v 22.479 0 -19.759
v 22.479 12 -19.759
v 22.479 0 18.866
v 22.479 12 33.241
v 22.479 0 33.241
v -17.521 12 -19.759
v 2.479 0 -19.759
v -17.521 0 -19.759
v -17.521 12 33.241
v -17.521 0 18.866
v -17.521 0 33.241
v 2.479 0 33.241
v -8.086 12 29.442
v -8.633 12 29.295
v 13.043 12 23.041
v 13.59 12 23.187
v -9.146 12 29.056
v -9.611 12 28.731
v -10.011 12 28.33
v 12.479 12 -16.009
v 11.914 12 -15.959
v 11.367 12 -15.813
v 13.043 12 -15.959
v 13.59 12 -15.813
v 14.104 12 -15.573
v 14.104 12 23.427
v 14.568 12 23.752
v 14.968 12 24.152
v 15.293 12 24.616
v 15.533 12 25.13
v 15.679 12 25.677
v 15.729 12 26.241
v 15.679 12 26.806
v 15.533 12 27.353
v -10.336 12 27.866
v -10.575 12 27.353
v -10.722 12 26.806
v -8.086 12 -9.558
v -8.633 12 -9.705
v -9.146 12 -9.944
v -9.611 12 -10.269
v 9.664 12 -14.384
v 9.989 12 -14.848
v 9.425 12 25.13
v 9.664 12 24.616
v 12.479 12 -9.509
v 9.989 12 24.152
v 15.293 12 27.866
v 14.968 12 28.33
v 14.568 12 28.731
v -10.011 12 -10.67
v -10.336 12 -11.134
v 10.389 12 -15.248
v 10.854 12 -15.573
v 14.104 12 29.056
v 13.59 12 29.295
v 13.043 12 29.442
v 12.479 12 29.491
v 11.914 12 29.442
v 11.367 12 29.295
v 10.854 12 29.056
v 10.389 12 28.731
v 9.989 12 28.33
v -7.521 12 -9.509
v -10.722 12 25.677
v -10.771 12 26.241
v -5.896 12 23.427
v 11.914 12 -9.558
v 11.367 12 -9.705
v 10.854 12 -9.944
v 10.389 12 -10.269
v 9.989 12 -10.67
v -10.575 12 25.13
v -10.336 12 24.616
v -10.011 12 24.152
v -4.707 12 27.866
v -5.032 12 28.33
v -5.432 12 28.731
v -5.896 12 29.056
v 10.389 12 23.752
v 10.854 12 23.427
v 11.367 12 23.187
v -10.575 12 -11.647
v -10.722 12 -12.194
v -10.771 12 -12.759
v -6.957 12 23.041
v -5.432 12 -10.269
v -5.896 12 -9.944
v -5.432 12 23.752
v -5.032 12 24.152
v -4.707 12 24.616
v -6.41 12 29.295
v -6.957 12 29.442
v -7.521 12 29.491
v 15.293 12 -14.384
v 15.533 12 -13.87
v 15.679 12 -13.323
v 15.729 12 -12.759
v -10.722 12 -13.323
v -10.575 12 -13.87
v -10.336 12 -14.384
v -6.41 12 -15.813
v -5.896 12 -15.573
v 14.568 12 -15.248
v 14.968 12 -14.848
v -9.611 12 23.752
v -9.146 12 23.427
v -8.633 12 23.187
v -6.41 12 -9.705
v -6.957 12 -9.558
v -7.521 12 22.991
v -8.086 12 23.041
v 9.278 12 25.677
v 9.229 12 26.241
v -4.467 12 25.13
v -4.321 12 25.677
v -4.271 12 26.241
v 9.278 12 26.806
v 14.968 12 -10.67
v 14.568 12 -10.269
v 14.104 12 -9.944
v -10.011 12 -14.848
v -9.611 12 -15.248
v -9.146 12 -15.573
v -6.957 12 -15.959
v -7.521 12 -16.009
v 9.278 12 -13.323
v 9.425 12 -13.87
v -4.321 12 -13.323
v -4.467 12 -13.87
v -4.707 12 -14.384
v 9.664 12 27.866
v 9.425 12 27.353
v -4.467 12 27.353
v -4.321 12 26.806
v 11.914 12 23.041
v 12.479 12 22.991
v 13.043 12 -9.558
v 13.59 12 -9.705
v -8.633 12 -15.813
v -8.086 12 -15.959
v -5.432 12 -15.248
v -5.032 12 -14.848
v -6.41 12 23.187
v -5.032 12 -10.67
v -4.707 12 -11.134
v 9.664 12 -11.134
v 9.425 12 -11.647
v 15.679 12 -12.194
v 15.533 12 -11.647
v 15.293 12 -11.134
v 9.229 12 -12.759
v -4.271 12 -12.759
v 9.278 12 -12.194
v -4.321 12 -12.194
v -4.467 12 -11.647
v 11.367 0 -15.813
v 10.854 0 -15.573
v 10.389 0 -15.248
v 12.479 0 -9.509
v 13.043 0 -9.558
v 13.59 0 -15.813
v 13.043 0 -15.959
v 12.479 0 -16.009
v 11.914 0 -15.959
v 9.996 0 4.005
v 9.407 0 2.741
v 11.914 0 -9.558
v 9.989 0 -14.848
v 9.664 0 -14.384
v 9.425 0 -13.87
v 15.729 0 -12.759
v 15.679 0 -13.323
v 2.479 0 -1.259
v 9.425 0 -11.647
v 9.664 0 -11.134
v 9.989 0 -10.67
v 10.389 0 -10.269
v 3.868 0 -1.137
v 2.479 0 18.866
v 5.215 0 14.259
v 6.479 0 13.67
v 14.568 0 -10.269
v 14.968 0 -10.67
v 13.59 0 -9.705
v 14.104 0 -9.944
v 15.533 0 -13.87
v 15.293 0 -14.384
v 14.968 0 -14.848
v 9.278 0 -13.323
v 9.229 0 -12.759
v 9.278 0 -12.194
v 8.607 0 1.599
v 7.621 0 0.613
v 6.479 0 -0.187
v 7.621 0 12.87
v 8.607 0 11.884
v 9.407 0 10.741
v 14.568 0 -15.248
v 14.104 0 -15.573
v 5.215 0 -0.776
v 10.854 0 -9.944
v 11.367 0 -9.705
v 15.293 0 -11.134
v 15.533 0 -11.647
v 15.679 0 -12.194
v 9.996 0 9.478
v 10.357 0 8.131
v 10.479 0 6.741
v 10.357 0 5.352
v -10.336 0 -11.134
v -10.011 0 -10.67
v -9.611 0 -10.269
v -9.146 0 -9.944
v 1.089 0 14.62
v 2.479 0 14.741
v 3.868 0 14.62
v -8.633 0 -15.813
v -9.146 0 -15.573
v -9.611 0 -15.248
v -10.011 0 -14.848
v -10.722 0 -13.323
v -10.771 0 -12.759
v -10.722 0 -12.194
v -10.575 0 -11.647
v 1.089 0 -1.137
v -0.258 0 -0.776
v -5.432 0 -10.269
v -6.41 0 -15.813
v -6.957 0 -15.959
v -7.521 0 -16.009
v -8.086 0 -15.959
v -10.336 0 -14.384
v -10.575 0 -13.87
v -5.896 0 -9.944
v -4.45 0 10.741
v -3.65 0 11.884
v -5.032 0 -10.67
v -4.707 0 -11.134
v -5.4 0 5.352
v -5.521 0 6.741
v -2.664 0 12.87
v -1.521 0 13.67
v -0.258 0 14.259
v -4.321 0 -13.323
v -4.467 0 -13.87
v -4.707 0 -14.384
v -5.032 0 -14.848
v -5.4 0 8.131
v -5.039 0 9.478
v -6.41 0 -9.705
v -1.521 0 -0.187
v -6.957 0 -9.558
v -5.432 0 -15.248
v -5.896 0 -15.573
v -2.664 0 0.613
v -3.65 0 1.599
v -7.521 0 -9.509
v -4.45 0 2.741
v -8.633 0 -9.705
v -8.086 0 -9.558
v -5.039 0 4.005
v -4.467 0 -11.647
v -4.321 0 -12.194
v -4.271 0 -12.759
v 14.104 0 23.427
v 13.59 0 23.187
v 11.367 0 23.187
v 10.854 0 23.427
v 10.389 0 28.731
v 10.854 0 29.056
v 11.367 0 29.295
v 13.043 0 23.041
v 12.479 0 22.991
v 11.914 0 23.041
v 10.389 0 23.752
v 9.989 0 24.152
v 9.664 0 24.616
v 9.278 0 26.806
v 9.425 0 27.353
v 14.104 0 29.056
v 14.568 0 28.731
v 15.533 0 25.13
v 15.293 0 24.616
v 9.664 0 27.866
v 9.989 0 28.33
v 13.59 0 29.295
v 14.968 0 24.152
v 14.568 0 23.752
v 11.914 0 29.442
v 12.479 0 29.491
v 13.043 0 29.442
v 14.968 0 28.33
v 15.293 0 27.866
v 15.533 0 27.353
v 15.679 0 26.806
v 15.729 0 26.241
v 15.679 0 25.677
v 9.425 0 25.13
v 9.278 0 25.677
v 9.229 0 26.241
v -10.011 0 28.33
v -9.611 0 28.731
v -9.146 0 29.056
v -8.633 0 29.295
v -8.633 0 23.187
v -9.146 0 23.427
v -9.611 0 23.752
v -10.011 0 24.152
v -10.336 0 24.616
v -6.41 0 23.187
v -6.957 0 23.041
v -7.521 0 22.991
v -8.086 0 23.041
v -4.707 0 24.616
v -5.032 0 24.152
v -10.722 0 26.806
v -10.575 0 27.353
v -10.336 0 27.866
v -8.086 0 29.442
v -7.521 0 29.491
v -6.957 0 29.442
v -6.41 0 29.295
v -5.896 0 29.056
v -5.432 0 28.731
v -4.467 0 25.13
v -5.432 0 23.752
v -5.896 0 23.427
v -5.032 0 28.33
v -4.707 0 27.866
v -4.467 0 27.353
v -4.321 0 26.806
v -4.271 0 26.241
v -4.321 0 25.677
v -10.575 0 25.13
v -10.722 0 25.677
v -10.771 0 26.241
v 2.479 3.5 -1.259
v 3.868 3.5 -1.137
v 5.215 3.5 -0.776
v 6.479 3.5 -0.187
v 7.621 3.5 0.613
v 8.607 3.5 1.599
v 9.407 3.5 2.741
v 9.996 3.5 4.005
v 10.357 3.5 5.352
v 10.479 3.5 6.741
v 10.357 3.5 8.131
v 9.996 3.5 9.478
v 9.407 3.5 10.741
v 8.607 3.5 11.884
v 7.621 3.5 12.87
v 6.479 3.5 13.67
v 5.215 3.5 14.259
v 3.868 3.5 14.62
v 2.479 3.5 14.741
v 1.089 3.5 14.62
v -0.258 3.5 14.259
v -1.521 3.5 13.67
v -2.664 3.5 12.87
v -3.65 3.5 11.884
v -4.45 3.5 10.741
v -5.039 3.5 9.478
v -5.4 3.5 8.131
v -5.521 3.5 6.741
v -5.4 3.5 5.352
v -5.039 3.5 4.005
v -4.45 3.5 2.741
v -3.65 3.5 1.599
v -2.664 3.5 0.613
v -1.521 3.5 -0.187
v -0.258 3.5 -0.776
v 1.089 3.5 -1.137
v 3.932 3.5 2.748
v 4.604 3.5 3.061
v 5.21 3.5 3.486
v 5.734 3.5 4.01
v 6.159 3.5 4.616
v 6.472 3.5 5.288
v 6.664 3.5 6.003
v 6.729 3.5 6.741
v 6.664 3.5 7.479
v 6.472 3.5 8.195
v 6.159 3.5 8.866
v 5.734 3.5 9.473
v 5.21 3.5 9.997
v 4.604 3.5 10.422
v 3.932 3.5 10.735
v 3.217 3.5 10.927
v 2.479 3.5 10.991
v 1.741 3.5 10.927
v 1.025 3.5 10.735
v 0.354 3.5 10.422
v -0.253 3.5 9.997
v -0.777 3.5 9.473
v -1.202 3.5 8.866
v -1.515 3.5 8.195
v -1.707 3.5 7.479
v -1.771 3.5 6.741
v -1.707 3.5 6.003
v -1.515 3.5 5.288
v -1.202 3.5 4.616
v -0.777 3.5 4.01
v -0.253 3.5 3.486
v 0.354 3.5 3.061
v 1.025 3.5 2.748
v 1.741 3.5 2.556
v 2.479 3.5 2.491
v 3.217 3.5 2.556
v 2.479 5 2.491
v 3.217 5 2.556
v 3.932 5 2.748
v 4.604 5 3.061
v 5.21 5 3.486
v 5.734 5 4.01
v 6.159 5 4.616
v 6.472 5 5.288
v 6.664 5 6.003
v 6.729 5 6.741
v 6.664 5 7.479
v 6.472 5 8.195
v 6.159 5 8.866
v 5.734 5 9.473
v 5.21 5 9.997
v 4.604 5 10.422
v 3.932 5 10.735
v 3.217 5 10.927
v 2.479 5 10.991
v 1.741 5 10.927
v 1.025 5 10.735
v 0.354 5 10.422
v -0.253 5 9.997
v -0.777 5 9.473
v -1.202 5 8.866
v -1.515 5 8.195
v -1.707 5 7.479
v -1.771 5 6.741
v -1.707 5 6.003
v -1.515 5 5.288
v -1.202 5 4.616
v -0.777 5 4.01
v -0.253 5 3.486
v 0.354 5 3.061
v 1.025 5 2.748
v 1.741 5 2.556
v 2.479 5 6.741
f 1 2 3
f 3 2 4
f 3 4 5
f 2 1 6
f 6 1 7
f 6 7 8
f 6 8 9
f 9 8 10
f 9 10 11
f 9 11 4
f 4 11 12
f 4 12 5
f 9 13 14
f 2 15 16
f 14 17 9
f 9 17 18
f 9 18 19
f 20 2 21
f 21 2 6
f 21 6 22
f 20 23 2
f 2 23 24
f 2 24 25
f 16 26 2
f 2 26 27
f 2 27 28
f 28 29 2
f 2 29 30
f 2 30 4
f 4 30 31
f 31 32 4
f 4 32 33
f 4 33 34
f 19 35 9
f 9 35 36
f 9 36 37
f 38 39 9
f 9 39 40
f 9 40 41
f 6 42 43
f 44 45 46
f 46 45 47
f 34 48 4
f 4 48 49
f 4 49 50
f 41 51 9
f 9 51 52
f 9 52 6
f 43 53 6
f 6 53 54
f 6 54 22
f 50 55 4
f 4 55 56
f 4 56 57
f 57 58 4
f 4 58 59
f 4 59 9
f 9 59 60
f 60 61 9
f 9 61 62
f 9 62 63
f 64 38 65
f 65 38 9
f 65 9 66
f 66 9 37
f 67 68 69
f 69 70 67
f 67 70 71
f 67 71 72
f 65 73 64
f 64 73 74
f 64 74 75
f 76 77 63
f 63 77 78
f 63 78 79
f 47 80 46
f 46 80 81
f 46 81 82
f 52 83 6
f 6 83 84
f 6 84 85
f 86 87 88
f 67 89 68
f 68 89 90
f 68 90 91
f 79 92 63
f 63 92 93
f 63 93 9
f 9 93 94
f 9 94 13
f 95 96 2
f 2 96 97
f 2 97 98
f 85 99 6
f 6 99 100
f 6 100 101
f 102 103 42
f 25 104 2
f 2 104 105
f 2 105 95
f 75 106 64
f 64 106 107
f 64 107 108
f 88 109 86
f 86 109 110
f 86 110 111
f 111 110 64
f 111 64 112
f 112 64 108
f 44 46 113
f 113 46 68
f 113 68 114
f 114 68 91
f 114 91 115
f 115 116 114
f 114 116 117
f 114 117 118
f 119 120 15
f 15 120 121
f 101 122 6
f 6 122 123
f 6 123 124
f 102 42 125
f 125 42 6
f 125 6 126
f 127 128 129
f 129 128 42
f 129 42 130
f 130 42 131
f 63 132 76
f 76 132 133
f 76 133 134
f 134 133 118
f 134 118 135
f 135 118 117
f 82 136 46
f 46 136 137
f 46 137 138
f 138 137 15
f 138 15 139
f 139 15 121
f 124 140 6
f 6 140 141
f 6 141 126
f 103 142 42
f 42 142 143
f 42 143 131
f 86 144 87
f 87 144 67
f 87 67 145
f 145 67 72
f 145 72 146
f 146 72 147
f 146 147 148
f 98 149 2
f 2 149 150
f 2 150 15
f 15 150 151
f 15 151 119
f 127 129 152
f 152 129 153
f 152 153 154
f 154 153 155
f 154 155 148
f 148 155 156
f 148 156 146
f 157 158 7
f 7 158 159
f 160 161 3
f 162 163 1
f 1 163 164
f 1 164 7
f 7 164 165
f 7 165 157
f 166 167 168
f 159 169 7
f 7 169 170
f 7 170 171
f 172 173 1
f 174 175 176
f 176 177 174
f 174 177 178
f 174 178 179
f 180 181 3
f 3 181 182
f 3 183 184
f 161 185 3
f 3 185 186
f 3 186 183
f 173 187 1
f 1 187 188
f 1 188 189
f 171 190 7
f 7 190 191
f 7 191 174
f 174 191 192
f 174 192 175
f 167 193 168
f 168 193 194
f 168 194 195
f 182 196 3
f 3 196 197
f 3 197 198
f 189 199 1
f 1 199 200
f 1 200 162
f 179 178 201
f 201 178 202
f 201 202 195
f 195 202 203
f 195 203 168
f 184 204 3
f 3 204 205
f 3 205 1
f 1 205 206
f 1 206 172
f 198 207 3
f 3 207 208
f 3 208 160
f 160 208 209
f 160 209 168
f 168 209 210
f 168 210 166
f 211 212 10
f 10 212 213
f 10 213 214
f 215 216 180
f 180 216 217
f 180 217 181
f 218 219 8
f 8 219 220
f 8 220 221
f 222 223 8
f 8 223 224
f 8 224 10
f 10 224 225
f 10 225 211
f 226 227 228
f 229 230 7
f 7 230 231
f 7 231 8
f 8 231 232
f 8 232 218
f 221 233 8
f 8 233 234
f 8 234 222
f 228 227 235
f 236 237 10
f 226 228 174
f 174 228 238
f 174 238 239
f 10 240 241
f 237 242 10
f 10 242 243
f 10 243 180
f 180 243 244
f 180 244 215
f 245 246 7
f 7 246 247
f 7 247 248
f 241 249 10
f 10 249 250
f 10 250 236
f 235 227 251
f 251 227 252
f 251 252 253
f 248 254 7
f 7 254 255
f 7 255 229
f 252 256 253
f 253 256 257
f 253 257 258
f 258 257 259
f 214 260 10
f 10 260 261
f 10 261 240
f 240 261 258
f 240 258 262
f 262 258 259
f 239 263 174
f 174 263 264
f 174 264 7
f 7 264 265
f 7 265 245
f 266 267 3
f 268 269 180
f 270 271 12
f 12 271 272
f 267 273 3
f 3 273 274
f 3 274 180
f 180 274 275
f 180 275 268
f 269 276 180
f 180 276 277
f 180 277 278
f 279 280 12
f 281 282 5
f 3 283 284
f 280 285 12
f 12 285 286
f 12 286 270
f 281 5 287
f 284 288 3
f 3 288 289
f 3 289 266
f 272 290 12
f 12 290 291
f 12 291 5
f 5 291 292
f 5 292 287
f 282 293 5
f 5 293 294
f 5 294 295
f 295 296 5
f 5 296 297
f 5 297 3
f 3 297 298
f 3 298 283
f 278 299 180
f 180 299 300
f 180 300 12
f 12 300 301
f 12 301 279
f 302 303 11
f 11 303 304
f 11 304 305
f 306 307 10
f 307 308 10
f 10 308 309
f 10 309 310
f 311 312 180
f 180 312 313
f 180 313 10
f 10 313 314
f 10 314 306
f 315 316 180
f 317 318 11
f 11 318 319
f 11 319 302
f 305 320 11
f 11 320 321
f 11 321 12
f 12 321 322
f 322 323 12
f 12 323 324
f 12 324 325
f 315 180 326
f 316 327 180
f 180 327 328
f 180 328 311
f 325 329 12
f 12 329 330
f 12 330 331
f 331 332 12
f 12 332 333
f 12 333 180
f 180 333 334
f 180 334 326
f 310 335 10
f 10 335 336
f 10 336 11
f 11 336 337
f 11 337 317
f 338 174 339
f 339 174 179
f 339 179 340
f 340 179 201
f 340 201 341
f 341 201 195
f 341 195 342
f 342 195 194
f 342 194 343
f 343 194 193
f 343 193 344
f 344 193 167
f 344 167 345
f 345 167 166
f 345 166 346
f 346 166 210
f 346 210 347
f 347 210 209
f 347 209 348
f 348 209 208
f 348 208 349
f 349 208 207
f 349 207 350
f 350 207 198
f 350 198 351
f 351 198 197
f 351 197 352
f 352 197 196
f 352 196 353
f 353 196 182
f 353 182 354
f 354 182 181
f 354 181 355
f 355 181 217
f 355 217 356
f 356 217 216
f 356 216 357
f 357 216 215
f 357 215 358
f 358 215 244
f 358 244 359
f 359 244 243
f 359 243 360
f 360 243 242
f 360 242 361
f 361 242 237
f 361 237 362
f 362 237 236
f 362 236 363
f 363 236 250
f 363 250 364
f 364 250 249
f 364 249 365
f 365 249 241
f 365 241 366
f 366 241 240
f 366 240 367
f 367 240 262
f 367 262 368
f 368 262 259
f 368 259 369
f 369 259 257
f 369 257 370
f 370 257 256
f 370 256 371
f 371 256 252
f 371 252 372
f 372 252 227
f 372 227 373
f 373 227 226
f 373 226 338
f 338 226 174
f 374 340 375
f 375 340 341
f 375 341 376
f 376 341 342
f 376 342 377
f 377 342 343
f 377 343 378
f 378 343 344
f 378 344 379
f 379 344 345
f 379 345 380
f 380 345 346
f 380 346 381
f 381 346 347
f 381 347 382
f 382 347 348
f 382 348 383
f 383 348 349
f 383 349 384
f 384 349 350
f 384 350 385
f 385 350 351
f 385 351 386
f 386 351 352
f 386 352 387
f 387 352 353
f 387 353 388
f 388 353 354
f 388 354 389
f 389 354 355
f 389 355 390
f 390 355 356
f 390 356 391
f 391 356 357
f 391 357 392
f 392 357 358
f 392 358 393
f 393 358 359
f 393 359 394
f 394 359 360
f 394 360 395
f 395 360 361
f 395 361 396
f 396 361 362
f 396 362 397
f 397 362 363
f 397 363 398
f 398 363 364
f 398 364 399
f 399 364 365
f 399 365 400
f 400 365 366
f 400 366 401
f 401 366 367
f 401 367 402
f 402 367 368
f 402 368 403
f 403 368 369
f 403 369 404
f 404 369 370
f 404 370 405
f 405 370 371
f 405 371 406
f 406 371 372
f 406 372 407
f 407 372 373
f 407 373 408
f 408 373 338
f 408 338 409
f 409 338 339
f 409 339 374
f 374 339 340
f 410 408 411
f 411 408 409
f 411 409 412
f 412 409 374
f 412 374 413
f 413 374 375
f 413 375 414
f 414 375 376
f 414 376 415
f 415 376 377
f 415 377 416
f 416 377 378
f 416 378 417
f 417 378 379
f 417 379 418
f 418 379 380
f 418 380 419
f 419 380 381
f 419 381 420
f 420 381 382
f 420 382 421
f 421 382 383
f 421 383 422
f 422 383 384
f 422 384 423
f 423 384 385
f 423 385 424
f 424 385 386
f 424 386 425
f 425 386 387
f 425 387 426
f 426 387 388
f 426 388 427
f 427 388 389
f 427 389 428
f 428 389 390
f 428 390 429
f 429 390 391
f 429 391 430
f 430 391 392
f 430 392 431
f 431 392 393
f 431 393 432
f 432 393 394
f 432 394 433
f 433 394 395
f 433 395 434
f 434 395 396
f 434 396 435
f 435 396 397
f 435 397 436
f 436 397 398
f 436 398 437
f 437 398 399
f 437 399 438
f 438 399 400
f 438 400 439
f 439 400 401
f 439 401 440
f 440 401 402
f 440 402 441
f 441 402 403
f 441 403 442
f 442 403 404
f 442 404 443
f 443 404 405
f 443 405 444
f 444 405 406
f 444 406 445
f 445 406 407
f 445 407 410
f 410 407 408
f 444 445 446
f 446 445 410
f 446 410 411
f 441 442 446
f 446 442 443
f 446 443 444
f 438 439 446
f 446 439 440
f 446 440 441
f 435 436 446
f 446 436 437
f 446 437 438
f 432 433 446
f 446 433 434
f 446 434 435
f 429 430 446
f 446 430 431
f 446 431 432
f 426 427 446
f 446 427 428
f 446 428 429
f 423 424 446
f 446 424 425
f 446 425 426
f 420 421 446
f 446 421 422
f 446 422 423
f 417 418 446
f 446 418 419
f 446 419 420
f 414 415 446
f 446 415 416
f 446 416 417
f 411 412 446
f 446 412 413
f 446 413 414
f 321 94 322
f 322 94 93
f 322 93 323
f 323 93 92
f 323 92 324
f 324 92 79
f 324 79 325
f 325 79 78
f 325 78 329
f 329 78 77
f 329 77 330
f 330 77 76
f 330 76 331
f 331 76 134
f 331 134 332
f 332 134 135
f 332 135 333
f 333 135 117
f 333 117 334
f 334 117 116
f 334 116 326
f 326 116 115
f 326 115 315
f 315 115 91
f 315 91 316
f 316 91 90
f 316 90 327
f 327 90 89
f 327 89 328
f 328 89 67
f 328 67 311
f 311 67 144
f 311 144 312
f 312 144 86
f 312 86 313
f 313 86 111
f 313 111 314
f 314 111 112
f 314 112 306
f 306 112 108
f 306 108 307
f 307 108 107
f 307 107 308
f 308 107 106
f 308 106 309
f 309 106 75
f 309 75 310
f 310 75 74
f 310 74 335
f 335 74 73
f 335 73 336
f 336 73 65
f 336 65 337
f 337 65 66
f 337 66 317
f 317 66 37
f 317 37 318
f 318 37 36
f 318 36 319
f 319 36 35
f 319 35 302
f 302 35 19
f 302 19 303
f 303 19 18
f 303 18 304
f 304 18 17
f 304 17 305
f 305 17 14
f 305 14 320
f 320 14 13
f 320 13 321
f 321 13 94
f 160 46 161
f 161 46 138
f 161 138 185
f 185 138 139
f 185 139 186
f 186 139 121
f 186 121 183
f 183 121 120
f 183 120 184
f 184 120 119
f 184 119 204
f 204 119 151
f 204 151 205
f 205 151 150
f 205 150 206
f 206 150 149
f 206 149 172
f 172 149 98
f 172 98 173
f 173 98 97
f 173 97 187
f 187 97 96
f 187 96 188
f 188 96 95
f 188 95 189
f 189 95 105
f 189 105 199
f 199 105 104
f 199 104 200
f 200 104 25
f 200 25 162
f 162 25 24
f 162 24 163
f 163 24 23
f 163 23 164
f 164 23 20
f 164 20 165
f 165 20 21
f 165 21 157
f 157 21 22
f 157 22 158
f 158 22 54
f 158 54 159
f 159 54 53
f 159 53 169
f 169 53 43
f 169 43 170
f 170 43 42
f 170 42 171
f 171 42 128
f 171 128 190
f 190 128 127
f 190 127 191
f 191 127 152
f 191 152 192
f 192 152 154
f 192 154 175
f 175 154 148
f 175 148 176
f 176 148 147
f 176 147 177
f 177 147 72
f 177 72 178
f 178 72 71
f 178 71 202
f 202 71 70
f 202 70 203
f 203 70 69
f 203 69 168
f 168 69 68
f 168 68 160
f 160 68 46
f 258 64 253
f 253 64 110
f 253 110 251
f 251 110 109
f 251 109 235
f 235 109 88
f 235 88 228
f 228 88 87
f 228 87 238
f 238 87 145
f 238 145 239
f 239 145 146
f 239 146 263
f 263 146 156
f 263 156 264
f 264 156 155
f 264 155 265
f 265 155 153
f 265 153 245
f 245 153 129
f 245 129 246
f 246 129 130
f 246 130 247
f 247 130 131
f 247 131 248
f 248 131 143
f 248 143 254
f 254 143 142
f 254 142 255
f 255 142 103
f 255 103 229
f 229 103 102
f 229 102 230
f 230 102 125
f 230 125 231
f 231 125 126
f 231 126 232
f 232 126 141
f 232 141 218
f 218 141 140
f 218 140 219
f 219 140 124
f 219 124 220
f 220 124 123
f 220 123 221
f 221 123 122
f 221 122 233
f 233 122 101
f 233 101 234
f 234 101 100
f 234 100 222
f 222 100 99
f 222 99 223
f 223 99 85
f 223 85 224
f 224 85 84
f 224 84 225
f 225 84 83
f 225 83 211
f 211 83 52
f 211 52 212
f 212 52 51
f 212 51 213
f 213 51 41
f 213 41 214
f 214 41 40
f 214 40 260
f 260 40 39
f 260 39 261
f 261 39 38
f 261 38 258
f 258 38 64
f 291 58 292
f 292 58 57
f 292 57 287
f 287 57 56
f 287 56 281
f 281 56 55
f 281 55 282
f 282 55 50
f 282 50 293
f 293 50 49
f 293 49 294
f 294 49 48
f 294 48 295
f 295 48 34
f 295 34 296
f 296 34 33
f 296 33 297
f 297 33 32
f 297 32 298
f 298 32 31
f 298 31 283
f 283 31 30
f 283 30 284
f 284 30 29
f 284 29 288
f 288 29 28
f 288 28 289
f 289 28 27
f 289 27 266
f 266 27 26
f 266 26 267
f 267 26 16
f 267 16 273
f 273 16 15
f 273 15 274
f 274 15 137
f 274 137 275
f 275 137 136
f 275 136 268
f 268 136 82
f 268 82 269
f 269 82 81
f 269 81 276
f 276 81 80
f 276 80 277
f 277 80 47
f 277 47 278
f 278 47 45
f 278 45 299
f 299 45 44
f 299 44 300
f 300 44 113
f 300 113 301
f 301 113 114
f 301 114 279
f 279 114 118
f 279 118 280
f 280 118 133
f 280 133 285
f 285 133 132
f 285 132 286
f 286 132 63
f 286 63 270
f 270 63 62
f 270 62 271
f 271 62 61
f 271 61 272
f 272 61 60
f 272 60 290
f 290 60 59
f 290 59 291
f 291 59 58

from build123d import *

# Parameters (mm, degrees)
SKETCH1_W           = 40
SKETCH1_H           = 53
BOSS_EXTRUDE1_DEPTH = 12
SKETCH2_R           = 8
CUT_EXTRUDE1_DEPTH  = 3.5
SKETCH4_R           = 4.25
CUT_EXTRUDE2_DEPTH  = 1.5
CUT_EXTRUDE3_REACH  = 14
SKETCH5_R           = 3.25


with BuildPart() as part:
    # Sketch1 → Boss-Extrude1 (new body)
    with BuildSketch(Plane(origin=(0, 0, 0), x_dir=(1, 0, 0), z_dir=(0, 1, 0))):
        with Locations((2.478549399, -6.741379093)):
            Rectangle(SKETCH1_W, SKETCH1_H)
    extrude(amount=BOSS_EXTRUDE1_DEPTH)

    # Sketch2 → Cut-Extrude1 (cut)
    with BuildSketch(Plane.XZ):
        with Locations((2.478549399, 6.741379093)):
            Circle(SKETCH2_R)
    extrude(amount=-CUT_EXTRUDE1_DEPTH, mode=Mode.SUBTRACT)

    # Sketch4 → Cut-Extrude2 (cut)
    with BuildSketch(Plane.XZ.offset(-3.5)):
        with Locations((2.478549399, 6.741379093)):
            Circle(SKETCH4_R)
    extrude(amount=-CUT_EXTRUDE2_DEPTH, mode=Mode.SUBTRACT)

    # Sketch5 → Cut-Extrude3 (cut, up to next)
    with BuildSketch(Plane(origin=(0, 12, 0), x_dir=(1, 0, 0), z_dir=(0, 1, 0)), mode=Mode.PRIVATE) as cut_extrude3_sk1:
        with Locations((-7.521450601, -26.241379093)):
            Circle(SKETCH5_R)
    cut_extrude3_tool1 = extrude(cut_extrude3_sk1.sketch, amount=-CUT_EXTRUDE3_REACH, mode=Mode.PRIVATE) & part.part
    add(cut_extrude3_tool1.solids().sort_by_distance((-7.521451, 12, 26.241379))[0], mode=Mode.SUBTRACT)
    # Sketch5 → Cut-Extrude3 (cut, up to next)
    with BuildSketch(Plane(origin=(0, 12, 0), x_dir=(1, 0, 0), z_dir=(0, 1, 0)), mode=Mode.PRIVATE) as cut_extrude3_sk2:
        with Locations((12.478549399, -26.241379093)):
            Circle(SKETCH5_R)
    cut_extrude3_tool2 = extrude(cut_extrude3_sk2.sketch, amount=-CUT_EXTRUDE3_REACH, mode=Mode.PRIVATE) & part.part
    add(cut_extrude3_tool2.solids().sort_by_distance((12.478549, 12, 26.241379))[0], mode=Mode.SUBTRACT)
    # Sketch5 → Cut-Extrude3 (cut, up to next)
    with BuildSketch(Plane(origin=(0, 12, 0), x_dir=(1, 0, 0), z_dir=(0, 1, 0)), mode=Mode.PRIVATE) as cut_extrude3_sk3:
        with Locations((-7.521450601, 12.758620907)):
            Circle(SKETCH5_R)
    cut_extrude3_tool3 = extrude(cut_extrude3_sk3.sketch, amount=-CUT_EXTRUDE3_REACH, mode=Mode.PRIVATE) & part.part
    add(cut_extrude3_tool3.solids().sort_by_distance((-7.521451, 12, -12.758621))[0], mode=Mode.SUBTRACT)
    # Sketch5 → Cut-Extrude3 (cut, up to next)
    with BuildSketch(Plane(origin=(0, 12, 0), x_dir=(1, 0, 0), z_dir=(0, 1, 0)), mode=Mode.PRIVATE) as cut_extrude3_sk4:
        with Locations((12.478549399, 12.758620907)):
            Circle(SKETCH5_R)
    cut_extrude3_tool4 = extrude(cut_extrude3_sk4.sketch, amount=-CUT_EXTRUDE3_REACH, mode=Mode.PRIVATE) & part.part
    add(cut_extrude3_tool4.solids().sort_by_distance((12.478549, 12, -12.758621))[0], mode=Mode.SUBTRACT)


solid = part.part
